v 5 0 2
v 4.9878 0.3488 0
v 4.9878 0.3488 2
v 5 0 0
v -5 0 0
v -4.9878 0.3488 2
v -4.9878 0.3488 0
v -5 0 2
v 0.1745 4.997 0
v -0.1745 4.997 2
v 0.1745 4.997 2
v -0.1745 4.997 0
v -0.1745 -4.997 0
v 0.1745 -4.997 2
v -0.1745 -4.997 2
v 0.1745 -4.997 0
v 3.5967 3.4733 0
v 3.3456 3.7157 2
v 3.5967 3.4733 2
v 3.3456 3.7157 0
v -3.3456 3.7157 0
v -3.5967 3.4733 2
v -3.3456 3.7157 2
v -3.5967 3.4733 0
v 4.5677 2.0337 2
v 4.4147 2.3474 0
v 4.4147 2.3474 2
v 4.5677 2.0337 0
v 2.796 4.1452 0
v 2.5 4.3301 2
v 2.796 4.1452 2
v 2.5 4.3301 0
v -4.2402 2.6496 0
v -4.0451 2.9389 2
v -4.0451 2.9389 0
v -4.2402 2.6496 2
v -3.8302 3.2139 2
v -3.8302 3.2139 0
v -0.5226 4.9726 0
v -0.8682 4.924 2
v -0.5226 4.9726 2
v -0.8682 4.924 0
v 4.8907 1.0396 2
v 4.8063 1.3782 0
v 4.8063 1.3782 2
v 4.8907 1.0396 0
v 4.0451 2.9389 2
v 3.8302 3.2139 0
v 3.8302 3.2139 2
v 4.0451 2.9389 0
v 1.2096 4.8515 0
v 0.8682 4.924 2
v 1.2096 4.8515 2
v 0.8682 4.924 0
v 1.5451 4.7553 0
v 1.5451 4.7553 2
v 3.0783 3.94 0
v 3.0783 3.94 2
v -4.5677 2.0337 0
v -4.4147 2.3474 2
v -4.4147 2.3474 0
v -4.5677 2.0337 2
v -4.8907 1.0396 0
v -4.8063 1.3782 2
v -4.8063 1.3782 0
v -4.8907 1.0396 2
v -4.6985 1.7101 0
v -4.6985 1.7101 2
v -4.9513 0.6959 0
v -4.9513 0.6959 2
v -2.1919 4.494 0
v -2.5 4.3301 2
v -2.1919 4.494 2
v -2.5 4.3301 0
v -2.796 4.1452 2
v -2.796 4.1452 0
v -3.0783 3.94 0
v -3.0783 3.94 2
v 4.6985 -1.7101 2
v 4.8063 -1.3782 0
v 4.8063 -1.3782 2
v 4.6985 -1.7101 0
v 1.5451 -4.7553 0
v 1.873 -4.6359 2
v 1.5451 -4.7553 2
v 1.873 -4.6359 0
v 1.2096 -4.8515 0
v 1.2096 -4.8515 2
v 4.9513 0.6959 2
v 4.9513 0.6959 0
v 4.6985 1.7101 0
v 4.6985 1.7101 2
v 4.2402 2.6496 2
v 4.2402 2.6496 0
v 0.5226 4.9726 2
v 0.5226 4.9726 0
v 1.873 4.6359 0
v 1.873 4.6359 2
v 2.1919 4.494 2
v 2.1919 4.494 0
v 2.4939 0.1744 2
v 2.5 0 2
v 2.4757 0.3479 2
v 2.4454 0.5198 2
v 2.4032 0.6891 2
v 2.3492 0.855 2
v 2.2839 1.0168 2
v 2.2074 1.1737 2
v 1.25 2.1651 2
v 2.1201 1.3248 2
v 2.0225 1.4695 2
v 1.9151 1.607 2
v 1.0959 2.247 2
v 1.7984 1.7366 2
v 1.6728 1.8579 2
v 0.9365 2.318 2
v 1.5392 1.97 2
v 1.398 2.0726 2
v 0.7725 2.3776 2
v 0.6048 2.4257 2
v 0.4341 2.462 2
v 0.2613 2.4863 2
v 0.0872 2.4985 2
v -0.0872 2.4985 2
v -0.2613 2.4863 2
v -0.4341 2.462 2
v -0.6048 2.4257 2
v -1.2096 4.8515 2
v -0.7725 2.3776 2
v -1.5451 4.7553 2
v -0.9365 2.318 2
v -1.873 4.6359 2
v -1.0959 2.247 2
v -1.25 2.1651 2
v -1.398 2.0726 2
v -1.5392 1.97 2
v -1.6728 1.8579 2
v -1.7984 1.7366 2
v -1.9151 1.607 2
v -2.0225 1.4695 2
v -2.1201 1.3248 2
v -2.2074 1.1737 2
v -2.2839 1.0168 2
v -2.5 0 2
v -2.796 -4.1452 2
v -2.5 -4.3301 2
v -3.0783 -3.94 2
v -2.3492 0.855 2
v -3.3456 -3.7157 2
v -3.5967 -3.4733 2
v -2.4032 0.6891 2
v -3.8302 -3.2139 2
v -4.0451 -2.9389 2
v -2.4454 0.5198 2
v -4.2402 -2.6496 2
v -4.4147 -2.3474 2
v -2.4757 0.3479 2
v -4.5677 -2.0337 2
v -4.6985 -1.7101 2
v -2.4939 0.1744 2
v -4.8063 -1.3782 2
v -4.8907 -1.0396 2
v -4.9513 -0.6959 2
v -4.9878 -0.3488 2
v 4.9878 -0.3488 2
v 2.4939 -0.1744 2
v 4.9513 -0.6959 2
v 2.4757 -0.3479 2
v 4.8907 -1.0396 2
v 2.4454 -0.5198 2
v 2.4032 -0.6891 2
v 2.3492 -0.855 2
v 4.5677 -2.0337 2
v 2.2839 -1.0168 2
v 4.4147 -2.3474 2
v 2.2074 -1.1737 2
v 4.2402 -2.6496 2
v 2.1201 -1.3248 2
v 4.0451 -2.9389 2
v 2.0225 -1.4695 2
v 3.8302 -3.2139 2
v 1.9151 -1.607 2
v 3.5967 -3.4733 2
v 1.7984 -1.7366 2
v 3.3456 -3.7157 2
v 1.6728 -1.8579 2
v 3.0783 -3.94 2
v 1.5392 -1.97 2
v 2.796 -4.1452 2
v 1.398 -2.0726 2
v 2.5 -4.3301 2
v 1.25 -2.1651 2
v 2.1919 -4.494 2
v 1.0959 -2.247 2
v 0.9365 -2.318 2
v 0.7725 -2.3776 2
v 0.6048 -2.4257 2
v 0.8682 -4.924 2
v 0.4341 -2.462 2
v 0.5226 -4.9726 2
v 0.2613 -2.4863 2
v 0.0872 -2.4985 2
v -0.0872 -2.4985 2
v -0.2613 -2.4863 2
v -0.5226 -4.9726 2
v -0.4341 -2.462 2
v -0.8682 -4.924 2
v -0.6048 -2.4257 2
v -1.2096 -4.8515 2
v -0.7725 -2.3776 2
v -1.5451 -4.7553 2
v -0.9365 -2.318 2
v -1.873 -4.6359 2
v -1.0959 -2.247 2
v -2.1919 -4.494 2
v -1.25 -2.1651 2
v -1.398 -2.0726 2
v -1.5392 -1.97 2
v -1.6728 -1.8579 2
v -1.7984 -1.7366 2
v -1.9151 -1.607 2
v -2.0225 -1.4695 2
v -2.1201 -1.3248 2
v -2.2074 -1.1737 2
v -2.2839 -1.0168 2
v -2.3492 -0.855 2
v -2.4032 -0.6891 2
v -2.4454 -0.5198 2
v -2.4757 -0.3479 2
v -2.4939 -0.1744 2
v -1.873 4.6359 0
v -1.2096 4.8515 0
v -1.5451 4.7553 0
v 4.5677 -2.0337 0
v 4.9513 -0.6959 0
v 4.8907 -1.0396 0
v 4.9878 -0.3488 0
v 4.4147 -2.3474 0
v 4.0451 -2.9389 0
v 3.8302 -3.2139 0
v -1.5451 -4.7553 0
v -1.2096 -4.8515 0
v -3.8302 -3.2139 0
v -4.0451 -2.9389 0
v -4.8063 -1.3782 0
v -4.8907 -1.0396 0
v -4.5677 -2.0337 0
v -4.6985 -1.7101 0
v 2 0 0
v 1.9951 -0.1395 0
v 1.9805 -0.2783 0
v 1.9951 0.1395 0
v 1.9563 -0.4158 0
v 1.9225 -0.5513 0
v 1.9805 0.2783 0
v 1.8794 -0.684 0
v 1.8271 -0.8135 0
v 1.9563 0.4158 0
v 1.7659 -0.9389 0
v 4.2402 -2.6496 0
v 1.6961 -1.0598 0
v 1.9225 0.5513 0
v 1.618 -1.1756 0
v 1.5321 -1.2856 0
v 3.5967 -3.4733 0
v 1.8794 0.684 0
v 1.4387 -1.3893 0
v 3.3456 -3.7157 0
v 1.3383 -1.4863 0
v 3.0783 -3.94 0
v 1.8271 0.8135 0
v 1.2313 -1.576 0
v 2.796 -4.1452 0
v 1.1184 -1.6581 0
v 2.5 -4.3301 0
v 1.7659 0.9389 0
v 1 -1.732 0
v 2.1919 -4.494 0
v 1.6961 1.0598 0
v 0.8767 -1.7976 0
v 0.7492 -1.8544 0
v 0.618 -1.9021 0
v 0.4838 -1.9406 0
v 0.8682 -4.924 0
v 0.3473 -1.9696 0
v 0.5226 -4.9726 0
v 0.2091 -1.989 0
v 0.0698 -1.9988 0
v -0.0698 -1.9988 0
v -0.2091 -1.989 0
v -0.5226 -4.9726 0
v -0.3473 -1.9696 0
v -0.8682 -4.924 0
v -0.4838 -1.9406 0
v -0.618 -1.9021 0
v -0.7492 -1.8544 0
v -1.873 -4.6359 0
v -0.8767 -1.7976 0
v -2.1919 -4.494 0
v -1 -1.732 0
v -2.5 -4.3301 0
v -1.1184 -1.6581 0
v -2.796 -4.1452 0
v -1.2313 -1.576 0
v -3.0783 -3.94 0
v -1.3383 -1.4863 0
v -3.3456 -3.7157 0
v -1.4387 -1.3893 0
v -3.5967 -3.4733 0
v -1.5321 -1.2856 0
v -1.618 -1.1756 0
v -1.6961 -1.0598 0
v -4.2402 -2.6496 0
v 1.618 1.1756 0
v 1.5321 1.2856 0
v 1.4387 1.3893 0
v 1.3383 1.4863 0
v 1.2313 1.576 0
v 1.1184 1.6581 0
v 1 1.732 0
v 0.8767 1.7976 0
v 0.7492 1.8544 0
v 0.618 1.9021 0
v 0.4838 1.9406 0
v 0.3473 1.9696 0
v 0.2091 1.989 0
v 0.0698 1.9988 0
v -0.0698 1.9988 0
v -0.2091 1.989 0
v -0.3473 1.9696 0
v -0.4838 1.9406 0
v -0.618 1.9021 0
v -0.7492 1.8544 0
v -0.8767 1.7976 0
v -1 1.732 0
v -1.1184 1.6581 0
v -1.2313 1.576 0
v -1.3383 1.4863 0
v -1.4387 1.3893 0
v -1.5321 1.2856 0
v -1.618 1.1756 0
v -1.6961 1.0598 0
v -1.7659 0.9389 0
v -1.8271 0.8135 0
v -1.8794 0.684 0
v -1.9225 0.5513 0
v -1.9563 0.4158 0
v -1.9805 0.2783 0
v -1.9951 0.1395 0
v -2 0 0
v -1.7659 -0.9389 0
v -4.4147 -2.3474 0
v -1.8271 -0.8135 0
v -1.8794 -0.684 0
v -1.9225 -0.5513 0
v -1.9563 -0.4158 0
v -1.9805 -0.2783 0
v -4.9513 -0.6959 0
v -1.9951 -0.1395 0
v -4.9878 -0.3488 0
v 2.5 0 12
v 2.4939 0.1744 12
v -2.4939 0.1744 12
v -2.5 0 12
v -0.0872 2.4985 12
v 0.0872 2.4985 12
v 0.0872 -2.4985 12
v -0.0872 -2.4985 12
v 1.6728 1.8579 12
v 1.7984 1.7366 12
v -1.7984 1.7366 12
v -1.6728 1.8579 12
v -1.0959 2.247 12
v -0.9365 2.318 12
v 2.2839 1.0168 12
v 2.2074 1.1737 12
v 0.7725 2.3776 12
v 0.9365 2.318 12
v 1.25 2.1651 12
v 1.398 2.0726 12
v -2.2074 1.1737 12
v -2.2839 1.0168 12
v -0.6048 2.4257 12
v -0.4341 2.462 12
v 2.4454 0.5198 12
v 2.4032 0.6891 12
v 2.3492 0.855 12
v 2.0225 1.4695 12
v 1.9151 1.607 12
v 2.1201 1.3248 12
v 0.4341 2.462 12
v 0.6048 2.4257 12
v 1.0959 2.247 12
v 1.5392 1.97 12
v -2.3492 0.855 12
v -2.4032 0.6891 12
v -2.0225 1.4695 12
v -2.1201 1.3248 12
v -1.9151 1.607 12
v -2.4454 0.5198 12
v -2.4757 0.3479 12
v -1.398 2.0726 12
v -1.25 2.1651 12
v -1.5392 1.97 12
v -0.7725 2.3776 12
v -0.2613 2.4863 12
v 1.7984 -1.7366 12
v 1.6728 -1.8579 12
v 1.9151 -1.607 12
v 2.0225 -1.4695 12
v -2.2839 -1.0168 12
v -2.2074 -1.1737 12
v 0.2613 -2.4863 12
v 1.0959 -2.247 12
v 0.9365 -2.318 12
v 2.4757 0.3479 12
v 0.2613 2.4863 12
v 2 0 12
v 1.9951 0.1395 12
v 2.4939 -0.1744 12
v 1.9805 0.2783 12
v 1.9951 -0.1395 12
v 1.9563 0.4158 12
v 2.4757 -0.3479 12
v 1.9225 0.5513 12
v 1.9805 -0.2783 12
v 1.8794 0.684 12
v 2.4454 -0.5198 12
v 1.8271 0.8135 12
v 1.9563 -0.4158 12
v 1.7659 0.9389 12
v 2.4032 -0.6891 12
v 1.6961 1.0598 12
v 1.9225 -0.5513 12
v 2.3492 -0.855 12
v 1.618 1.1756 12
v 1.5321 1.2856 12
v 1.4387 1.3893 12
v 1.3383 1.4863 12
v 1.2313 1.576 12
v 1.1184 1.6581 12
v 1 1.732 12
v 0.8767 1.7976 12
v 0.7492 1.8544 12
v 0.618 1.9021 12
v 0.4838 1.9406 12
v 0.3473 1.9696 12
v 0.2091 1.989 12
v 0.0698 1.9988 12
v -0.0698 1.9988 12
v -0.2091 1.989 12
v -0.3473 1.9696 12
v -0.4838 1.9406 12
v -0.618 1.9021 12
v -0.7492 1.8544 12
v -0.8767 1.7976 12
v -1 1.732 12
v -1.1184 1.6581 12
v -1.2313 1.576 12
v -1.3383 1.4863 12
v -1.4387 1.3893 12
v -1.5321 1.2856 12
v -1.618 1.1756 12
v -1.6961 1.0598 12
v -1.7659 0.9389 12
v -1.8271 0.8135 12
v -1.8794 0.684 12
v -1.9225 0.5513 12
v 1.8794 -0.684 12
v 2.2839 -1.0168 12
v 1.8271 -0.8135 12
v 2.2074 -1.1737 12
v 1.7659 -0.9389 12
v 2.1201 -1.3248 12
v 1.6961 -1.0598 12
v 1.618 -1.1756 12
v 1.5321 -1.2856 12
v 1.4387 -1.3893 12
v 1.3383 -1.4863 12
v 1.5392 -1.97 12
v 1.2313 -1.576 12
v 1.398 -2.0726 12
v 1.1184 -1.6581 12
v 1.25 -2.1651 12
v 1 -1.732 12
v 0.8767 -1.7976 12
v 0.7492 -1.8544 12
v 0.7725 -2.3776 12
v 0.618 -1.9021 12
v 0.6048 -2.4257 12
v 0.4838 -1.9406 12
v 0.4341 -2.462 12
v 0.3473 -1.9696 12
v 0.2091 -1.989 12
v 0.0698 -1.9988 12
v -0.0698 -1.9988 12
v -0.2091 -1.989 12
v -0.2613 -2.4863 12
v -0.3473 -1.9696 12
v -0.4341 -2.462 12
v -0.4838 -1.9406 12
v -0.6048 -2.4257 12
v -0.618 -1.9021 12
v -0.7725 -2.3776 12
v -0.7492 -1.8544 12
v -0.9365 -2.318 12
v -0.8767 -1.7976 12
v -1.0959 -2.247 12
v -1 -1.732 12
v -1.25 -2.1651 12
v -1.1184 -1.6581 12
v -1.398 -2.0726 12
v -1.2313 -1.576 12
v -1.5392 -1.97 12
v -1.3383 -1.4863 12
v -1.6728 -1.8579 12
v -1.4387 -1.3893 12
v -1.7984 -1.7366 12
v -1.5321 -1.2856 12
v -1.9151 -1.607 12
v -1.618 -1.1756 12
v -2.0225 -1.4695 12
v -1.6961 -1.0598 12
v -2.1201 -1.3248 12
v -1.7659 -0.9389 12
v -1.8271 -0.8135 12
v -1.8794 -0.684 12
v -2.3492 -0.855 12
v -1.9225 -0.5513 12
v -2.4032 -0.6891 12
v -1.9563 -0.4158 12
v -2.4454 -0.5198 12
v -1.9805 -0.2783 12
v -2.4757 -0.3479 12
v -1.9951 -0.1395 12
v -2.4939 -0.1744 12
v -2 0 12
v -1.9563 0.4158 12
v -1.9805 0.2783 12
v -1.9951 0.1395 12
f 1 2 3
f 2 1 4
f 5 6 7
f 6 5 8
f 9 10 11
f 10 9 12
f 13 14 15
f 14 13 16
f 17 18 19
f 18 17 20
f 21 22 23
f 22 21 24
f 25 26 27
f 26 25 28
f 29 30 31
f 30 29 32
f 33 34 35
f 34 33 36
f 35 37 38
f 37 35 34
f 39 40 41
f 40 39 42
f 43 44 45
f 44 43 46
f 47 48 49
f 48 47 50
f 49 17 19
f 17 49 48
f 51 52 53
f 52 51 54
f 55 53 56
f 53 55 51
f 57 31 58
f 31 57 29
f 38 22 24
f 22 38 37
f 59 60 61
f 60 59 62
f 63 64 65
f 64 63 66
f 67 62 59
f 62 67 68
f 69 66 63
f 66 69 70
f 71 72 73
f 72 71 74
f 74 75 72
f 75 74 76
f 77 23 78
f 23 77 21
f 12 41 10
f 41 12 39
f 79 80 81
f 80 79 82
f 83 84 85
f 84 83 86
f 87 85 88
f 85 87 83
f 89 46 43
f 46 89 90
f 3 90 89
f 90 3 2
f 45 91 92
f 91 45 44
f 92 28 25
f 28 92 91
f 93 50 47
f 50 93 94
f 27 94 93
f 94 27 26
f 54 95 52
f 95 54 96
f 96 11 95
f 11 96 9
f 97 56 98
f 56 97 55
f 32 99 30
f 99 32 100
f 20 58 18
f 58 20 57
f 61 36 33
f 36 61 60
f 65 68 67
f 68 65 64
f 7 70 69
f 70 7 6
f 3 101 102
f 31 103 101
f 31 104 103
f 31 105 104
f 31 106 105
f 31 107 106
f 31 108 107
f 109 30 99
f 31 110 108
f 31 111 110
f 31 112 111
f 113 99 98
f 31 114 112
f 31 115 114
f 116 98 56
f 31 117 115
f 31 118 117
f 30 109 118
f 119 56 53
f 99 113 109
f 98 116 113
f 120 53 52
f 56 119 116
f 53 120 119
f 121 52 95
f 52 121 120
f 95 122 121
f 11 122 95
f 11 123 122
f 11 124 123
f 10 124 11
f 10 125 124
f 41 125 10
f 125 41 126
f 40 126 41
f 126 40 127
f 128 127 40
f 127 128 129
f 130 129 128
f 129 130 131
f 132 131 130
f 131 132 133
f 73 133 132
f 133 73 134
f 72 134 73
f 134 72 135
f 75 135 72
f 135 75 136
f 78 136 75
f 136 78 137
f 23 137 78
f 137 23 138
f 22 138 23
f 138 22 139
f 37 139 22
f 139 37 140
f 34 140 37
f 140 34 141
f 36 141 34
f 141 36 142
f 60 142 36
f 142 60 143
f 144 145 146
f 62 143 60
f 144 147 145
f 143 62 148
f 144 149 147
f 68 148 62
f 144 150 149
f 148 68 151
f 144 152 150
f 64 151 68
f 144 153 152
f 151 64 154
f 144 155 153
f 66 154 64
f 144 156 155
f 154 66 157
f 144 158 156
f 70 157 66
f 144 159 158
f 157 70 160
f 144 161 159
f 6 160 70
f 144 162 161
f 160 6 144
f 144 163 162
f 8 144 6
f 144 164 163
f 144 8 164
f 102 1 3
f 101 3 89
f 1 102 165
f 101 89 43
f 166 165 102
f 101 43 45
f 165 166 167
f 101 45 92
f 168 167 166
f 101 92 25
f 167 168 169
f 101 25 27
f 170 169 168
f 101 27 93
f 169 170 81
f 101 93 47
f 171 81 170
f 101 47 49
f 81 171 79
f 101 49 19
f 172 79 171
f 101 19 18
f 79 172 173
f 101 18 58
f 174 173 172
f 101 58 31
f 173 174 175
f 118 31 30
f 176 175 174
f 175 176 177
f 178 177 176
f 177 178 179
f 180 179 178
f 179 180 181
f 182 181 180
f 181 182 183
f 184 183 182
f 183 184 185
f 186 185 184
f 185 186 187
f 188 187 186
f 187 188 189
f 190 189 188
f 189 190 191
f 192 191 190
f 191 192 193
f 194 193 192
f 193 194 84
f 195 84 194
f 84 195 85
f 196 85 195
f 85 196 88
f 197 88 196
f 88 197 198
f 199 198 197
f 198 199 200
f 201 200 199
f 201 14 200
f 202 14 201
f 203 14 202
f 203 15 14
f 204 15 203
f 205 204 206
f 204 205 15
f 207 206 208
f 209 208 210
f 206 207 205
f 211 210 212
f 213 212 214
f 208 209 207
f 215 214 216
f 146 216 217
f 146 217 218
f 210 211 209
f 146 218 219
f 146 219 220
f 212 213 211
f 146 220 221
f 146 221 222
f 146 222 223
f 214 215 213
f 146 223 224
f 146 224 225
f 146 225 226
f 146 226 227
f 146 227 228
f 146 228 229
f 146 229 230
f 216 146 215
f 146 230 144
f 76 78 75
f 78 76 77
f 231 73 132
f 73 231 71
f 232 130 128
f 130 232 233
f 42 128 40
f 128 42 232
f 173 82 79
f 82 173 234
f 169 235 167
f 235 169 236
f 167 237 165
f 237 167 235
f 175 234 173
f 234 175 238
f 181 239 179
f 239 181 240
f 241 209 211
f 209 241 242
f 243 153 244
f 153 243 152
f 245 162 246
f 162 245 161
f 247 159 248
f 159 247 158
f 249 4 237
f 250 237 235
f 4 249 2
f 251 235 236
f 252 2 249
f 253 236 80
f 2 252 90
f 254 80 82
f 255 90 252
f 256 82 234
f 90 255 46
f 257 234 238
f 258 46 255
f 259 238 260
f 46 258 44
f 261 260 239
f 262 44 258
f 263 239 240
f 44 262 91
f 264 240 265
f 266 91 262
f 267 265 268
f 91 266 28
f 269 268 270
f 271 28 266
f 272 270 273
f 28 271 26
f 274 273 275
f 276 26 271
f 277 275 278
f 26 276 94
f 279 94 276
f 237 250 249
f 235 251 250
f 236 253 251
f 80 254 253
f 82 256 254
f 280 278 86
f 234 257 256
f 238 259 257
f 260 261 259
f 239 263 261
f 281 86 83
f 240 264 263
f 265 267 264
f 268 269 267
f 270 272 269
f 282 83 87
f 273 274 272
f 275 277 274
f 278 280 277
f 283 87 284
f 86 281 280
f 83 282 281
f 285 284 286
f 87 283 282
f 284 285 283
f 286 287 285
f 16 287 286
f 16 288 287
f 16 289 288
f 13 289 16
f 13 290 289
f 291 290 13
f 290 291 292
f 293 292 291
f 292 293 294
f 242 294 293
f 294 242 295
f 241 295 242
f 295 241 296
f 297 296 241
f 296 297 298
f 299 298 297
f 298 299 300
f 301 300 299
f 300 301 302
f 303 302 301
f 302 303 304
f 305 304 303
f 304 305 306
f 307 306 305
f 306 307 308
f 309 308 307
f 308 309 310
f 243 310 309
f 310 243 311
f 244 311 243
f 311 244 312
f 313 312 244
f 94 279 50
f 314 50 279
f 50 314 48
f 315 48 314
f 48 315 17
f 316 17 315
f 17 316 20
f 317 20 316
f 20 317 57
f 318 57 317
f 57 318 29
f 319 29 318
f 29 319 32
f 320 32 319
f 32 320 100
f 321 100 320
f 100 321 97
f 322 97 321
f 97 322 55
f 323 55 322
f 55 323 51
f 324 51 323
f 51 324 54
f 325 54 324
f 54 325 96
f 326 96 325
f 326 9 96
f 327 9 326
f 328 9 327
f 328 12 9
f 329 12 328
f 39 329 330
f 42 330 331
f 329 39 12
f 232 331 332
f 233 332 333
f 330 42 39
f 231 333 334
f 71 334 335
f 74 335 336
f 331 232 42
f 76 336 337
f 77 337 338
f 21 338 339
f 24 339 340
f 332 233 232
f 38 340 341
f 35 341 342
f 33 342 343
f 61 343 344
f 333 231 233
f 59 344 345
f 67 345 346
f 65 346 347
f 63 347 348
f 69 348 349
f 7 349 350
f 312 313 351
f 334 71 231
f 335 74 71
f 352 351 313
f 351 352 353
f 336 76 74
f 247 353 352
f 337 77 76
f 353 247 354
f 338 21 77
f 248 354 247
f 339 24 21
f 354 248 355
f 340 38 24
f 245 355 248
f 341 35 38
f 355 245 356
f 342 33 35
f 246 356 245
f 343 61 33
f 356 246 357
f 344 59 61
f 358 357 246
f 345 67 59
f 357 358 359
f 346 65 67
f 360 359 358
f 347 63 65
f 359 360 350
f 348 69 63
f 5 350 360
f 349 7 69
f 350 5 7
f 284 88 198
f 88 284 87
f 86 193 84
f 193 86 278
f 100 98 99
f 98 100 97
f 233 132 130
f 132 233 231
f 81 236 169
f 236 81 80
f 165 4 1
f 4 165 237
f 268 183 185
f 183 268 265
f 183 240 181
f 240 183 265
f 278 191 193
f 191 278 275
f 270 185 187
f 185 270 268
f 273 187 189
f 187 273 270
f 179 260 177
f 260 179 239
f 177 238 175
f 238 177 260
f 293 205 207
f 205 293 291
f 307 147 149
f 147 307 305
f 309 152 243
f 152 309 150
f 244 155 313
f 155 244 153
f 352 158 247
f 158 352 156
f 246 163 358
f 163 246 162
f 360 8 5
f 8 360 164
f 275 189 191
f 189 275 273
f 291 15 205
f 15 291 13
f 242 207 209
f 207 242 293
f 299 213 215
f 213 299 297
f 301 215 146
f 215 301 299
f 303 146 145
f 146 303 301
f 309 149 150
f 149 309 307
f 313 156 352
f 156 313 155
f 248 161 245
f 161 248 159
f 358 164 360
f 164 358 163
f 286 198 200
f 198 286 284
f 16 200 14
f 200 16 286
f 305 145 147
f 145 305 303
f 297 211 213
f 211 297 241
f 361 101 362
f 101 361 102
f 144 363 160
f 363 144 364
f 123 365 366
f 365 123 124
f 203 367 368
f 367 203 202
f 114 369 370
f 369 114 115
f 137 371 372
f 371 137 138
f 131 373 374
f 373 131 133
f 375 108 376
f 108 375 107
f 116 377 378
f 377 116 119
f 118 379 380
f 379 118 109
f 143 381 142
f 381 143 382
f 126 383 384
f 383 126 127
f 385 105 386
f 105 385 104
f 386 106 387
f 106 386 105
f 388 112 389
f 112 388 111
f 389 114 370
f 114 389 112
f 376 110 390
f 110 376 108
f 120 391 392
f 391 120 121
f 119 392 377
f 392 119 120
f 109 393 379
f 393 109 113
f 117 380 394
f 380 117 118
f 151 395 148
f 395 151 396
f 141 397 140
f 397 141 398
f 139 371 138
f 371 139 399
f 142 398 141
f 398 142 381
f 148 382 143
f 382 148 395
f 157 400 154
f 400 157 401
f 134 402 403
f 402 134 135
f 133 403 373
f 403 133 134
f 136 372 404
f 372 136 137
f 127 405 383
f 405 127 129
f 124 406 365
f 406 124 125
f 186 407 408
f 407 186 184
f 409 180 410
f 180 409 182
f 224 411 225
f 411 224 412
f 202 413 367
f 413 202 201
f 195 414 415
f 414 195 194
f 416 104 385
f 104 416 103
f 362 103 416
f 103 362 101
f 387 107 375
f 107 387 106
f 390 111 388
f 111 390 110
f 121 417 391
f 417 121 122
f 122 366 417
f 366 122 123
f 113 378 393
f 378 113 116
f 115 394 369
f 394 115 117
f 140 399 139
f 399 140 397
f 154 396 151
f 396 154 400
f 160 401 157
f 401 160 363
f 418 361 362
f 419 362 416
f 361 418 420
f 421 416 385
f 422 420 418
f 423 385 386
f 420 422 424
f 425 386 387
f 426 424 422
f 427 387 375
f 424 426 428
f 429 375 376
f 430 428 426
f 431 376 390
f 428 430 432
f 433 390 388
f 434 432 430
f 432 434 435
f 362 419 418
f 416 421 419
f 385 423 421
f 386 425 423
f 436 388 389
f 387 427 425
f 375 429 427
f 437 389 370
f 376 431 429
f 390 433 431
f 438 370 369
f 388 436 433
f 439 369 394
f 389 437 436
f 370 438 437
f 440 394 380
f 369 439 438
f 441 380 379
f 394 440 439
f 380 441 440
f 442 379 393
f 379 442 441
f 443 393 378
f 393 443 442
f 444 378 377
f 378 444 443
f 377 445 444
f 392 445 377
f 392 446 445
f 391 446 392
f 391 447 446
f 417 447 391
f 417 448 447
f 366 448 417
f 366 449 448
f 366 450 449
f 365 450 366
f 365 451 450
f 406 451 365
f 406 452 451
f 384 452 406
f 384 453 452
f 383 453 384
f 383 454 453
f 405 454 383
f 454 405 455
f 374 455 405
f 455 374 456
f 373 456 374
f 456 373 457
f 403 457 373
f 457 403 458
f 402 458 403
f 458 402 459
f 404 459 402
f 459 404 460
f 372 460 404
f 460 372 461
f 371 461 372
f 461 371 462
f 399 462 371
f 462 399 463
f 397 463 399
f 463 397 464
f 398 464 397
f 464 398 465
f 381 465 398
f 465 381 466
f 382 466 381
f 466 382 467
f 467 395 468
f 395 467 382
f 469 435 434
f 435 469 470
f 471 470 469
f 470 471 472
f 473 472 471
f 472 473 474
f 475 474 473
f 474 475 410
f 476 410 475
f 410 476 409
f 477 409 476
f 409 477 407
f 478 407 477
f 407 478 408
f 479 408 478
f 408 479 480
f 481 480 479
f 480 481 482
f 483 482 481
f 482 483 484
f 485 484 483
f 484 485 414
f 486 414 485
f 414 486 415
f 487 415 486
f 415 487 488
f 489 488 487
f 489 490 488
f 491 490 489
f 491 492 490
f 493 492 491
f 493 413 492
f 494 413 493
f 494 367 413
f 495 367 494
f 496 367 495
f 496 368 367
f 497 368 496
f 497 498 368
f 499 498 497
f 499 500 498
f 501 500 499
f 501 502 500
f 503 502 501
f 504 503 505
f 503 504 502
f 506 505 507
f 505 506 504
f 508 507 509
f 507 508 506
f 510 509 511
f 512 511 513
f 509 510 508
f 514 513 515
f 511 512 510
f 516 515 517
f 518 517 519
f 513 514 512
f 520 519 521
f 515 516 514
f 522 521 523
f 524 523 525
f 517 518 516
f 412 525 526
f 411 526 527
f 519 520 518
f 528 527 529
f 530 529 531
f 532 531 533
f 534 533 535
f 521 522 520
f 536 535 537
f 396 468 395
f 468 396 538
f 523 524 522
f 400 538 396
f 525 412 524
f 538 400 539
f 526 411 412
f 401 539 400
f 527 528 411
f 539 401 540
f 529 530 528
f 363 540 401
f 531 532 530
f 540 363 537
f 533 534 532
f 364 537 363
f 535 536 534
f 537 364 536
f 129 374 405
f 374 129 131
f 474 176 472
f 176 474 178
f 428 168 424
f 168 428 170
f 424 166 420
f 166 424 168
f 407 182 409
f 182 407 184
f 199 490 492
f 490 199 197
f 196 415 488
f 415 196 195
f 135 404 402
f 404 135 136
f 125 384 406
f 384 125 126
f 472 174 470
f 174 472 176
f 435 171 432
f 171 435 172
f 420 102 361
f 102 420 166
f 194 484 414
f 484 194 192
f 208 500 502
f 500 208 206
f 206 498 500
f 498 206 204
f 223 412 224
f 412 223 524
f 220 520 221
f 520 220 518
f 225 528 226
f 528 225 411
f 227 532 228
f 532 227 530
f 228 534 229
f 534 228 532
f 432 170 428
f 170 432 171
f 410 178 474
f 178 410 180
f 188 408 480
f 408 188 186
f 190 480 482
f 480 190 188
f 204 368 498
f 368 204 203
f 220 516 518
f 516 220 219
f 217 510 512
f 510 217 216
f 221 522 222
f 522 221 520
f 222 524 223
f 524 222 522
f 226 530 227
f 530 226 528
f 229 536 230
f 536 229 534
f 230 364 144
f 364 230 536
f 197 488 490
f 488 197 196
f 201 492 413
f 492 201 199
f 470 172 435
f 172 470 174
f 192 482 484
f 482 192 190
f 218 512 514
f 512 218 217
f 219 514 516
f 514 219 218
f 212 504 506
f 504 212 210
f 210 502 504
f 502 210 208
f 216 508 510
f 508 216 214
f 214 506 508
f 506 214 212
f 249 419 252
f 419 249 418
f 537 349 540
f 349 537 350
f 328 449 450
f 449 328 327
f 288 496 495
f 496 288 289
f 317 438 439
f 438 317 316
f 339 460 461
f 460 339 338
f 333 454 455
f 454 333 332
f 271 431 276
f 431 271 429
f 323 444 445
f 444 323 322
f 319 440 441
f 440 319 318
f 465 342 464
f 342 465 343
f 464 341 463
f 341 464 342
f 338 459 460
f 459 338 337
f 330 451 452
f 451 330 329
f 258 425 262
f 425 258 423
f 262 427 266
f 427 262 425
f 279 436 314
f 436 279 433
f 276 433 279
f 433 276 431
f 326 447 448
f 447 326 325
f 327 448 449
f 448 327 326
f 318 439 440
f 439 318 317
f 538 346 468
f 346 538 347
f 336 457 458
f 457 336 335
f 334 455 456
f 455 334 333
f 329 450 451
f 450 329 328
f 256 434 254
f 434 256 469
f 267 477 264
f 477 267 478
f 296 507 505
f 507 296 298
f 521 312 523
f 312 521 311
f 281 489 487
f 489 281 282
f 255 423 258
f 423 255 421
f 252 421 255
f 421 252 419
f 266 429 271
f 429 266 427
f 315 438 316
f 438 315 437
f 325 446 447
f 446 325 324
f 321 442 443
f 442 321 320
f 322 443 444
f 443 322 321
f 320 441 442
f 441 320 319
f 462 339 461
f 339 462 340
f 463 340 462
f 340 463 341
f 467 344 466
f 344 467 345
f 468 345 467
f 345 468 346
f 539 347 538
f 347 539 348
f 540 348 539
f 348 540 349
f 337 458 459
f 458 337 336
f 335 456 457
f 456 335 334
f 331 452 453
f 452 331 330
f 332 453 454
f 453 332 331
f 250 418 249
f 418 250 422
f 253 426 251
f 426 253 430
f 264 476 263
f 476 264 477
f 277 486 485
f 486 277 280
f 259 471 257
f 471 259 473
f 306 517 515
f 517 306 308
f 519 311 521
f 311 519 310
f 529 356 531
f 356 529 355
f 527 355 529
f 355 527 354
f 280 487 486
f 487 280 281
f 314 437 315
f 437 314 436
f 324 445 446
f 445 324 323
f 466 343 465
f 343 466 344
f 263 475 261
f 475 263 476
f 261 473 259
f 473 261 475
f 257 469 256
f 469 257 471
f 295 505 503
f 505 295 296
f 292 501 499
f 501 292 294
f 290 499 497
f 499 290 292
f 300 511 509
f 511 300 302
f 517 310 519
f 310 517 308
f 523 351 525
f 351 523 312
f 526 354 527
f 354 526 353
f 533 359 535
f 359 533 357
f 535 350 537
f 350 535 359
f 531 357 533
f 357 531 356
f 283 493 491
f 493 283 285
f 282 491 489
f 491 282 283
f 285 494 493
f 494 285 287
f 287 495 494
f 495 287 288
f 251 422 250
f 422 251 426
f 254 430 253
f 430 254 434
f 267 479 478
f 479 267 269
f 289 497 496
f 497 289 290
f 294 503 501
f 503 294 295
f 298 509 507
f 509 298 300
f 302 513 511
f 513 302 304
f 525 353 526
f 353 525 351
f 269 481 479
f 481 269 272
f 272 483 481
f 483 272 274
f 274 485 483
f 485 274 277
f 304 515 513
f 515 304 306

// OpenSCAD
height = 10;
inner = 4;
outer = 5;
lip = 10;
lipHeight = 2;

difference() {
    union() {
        cylinder(h=lipHeight, r=lip/2, $fn=90);
        cylinder(h=height+lipHeight, r=outer/2, $fn=90);
    }
    cylinder(h=height+lipHeight, r=inner/2, $fn=90);
}
